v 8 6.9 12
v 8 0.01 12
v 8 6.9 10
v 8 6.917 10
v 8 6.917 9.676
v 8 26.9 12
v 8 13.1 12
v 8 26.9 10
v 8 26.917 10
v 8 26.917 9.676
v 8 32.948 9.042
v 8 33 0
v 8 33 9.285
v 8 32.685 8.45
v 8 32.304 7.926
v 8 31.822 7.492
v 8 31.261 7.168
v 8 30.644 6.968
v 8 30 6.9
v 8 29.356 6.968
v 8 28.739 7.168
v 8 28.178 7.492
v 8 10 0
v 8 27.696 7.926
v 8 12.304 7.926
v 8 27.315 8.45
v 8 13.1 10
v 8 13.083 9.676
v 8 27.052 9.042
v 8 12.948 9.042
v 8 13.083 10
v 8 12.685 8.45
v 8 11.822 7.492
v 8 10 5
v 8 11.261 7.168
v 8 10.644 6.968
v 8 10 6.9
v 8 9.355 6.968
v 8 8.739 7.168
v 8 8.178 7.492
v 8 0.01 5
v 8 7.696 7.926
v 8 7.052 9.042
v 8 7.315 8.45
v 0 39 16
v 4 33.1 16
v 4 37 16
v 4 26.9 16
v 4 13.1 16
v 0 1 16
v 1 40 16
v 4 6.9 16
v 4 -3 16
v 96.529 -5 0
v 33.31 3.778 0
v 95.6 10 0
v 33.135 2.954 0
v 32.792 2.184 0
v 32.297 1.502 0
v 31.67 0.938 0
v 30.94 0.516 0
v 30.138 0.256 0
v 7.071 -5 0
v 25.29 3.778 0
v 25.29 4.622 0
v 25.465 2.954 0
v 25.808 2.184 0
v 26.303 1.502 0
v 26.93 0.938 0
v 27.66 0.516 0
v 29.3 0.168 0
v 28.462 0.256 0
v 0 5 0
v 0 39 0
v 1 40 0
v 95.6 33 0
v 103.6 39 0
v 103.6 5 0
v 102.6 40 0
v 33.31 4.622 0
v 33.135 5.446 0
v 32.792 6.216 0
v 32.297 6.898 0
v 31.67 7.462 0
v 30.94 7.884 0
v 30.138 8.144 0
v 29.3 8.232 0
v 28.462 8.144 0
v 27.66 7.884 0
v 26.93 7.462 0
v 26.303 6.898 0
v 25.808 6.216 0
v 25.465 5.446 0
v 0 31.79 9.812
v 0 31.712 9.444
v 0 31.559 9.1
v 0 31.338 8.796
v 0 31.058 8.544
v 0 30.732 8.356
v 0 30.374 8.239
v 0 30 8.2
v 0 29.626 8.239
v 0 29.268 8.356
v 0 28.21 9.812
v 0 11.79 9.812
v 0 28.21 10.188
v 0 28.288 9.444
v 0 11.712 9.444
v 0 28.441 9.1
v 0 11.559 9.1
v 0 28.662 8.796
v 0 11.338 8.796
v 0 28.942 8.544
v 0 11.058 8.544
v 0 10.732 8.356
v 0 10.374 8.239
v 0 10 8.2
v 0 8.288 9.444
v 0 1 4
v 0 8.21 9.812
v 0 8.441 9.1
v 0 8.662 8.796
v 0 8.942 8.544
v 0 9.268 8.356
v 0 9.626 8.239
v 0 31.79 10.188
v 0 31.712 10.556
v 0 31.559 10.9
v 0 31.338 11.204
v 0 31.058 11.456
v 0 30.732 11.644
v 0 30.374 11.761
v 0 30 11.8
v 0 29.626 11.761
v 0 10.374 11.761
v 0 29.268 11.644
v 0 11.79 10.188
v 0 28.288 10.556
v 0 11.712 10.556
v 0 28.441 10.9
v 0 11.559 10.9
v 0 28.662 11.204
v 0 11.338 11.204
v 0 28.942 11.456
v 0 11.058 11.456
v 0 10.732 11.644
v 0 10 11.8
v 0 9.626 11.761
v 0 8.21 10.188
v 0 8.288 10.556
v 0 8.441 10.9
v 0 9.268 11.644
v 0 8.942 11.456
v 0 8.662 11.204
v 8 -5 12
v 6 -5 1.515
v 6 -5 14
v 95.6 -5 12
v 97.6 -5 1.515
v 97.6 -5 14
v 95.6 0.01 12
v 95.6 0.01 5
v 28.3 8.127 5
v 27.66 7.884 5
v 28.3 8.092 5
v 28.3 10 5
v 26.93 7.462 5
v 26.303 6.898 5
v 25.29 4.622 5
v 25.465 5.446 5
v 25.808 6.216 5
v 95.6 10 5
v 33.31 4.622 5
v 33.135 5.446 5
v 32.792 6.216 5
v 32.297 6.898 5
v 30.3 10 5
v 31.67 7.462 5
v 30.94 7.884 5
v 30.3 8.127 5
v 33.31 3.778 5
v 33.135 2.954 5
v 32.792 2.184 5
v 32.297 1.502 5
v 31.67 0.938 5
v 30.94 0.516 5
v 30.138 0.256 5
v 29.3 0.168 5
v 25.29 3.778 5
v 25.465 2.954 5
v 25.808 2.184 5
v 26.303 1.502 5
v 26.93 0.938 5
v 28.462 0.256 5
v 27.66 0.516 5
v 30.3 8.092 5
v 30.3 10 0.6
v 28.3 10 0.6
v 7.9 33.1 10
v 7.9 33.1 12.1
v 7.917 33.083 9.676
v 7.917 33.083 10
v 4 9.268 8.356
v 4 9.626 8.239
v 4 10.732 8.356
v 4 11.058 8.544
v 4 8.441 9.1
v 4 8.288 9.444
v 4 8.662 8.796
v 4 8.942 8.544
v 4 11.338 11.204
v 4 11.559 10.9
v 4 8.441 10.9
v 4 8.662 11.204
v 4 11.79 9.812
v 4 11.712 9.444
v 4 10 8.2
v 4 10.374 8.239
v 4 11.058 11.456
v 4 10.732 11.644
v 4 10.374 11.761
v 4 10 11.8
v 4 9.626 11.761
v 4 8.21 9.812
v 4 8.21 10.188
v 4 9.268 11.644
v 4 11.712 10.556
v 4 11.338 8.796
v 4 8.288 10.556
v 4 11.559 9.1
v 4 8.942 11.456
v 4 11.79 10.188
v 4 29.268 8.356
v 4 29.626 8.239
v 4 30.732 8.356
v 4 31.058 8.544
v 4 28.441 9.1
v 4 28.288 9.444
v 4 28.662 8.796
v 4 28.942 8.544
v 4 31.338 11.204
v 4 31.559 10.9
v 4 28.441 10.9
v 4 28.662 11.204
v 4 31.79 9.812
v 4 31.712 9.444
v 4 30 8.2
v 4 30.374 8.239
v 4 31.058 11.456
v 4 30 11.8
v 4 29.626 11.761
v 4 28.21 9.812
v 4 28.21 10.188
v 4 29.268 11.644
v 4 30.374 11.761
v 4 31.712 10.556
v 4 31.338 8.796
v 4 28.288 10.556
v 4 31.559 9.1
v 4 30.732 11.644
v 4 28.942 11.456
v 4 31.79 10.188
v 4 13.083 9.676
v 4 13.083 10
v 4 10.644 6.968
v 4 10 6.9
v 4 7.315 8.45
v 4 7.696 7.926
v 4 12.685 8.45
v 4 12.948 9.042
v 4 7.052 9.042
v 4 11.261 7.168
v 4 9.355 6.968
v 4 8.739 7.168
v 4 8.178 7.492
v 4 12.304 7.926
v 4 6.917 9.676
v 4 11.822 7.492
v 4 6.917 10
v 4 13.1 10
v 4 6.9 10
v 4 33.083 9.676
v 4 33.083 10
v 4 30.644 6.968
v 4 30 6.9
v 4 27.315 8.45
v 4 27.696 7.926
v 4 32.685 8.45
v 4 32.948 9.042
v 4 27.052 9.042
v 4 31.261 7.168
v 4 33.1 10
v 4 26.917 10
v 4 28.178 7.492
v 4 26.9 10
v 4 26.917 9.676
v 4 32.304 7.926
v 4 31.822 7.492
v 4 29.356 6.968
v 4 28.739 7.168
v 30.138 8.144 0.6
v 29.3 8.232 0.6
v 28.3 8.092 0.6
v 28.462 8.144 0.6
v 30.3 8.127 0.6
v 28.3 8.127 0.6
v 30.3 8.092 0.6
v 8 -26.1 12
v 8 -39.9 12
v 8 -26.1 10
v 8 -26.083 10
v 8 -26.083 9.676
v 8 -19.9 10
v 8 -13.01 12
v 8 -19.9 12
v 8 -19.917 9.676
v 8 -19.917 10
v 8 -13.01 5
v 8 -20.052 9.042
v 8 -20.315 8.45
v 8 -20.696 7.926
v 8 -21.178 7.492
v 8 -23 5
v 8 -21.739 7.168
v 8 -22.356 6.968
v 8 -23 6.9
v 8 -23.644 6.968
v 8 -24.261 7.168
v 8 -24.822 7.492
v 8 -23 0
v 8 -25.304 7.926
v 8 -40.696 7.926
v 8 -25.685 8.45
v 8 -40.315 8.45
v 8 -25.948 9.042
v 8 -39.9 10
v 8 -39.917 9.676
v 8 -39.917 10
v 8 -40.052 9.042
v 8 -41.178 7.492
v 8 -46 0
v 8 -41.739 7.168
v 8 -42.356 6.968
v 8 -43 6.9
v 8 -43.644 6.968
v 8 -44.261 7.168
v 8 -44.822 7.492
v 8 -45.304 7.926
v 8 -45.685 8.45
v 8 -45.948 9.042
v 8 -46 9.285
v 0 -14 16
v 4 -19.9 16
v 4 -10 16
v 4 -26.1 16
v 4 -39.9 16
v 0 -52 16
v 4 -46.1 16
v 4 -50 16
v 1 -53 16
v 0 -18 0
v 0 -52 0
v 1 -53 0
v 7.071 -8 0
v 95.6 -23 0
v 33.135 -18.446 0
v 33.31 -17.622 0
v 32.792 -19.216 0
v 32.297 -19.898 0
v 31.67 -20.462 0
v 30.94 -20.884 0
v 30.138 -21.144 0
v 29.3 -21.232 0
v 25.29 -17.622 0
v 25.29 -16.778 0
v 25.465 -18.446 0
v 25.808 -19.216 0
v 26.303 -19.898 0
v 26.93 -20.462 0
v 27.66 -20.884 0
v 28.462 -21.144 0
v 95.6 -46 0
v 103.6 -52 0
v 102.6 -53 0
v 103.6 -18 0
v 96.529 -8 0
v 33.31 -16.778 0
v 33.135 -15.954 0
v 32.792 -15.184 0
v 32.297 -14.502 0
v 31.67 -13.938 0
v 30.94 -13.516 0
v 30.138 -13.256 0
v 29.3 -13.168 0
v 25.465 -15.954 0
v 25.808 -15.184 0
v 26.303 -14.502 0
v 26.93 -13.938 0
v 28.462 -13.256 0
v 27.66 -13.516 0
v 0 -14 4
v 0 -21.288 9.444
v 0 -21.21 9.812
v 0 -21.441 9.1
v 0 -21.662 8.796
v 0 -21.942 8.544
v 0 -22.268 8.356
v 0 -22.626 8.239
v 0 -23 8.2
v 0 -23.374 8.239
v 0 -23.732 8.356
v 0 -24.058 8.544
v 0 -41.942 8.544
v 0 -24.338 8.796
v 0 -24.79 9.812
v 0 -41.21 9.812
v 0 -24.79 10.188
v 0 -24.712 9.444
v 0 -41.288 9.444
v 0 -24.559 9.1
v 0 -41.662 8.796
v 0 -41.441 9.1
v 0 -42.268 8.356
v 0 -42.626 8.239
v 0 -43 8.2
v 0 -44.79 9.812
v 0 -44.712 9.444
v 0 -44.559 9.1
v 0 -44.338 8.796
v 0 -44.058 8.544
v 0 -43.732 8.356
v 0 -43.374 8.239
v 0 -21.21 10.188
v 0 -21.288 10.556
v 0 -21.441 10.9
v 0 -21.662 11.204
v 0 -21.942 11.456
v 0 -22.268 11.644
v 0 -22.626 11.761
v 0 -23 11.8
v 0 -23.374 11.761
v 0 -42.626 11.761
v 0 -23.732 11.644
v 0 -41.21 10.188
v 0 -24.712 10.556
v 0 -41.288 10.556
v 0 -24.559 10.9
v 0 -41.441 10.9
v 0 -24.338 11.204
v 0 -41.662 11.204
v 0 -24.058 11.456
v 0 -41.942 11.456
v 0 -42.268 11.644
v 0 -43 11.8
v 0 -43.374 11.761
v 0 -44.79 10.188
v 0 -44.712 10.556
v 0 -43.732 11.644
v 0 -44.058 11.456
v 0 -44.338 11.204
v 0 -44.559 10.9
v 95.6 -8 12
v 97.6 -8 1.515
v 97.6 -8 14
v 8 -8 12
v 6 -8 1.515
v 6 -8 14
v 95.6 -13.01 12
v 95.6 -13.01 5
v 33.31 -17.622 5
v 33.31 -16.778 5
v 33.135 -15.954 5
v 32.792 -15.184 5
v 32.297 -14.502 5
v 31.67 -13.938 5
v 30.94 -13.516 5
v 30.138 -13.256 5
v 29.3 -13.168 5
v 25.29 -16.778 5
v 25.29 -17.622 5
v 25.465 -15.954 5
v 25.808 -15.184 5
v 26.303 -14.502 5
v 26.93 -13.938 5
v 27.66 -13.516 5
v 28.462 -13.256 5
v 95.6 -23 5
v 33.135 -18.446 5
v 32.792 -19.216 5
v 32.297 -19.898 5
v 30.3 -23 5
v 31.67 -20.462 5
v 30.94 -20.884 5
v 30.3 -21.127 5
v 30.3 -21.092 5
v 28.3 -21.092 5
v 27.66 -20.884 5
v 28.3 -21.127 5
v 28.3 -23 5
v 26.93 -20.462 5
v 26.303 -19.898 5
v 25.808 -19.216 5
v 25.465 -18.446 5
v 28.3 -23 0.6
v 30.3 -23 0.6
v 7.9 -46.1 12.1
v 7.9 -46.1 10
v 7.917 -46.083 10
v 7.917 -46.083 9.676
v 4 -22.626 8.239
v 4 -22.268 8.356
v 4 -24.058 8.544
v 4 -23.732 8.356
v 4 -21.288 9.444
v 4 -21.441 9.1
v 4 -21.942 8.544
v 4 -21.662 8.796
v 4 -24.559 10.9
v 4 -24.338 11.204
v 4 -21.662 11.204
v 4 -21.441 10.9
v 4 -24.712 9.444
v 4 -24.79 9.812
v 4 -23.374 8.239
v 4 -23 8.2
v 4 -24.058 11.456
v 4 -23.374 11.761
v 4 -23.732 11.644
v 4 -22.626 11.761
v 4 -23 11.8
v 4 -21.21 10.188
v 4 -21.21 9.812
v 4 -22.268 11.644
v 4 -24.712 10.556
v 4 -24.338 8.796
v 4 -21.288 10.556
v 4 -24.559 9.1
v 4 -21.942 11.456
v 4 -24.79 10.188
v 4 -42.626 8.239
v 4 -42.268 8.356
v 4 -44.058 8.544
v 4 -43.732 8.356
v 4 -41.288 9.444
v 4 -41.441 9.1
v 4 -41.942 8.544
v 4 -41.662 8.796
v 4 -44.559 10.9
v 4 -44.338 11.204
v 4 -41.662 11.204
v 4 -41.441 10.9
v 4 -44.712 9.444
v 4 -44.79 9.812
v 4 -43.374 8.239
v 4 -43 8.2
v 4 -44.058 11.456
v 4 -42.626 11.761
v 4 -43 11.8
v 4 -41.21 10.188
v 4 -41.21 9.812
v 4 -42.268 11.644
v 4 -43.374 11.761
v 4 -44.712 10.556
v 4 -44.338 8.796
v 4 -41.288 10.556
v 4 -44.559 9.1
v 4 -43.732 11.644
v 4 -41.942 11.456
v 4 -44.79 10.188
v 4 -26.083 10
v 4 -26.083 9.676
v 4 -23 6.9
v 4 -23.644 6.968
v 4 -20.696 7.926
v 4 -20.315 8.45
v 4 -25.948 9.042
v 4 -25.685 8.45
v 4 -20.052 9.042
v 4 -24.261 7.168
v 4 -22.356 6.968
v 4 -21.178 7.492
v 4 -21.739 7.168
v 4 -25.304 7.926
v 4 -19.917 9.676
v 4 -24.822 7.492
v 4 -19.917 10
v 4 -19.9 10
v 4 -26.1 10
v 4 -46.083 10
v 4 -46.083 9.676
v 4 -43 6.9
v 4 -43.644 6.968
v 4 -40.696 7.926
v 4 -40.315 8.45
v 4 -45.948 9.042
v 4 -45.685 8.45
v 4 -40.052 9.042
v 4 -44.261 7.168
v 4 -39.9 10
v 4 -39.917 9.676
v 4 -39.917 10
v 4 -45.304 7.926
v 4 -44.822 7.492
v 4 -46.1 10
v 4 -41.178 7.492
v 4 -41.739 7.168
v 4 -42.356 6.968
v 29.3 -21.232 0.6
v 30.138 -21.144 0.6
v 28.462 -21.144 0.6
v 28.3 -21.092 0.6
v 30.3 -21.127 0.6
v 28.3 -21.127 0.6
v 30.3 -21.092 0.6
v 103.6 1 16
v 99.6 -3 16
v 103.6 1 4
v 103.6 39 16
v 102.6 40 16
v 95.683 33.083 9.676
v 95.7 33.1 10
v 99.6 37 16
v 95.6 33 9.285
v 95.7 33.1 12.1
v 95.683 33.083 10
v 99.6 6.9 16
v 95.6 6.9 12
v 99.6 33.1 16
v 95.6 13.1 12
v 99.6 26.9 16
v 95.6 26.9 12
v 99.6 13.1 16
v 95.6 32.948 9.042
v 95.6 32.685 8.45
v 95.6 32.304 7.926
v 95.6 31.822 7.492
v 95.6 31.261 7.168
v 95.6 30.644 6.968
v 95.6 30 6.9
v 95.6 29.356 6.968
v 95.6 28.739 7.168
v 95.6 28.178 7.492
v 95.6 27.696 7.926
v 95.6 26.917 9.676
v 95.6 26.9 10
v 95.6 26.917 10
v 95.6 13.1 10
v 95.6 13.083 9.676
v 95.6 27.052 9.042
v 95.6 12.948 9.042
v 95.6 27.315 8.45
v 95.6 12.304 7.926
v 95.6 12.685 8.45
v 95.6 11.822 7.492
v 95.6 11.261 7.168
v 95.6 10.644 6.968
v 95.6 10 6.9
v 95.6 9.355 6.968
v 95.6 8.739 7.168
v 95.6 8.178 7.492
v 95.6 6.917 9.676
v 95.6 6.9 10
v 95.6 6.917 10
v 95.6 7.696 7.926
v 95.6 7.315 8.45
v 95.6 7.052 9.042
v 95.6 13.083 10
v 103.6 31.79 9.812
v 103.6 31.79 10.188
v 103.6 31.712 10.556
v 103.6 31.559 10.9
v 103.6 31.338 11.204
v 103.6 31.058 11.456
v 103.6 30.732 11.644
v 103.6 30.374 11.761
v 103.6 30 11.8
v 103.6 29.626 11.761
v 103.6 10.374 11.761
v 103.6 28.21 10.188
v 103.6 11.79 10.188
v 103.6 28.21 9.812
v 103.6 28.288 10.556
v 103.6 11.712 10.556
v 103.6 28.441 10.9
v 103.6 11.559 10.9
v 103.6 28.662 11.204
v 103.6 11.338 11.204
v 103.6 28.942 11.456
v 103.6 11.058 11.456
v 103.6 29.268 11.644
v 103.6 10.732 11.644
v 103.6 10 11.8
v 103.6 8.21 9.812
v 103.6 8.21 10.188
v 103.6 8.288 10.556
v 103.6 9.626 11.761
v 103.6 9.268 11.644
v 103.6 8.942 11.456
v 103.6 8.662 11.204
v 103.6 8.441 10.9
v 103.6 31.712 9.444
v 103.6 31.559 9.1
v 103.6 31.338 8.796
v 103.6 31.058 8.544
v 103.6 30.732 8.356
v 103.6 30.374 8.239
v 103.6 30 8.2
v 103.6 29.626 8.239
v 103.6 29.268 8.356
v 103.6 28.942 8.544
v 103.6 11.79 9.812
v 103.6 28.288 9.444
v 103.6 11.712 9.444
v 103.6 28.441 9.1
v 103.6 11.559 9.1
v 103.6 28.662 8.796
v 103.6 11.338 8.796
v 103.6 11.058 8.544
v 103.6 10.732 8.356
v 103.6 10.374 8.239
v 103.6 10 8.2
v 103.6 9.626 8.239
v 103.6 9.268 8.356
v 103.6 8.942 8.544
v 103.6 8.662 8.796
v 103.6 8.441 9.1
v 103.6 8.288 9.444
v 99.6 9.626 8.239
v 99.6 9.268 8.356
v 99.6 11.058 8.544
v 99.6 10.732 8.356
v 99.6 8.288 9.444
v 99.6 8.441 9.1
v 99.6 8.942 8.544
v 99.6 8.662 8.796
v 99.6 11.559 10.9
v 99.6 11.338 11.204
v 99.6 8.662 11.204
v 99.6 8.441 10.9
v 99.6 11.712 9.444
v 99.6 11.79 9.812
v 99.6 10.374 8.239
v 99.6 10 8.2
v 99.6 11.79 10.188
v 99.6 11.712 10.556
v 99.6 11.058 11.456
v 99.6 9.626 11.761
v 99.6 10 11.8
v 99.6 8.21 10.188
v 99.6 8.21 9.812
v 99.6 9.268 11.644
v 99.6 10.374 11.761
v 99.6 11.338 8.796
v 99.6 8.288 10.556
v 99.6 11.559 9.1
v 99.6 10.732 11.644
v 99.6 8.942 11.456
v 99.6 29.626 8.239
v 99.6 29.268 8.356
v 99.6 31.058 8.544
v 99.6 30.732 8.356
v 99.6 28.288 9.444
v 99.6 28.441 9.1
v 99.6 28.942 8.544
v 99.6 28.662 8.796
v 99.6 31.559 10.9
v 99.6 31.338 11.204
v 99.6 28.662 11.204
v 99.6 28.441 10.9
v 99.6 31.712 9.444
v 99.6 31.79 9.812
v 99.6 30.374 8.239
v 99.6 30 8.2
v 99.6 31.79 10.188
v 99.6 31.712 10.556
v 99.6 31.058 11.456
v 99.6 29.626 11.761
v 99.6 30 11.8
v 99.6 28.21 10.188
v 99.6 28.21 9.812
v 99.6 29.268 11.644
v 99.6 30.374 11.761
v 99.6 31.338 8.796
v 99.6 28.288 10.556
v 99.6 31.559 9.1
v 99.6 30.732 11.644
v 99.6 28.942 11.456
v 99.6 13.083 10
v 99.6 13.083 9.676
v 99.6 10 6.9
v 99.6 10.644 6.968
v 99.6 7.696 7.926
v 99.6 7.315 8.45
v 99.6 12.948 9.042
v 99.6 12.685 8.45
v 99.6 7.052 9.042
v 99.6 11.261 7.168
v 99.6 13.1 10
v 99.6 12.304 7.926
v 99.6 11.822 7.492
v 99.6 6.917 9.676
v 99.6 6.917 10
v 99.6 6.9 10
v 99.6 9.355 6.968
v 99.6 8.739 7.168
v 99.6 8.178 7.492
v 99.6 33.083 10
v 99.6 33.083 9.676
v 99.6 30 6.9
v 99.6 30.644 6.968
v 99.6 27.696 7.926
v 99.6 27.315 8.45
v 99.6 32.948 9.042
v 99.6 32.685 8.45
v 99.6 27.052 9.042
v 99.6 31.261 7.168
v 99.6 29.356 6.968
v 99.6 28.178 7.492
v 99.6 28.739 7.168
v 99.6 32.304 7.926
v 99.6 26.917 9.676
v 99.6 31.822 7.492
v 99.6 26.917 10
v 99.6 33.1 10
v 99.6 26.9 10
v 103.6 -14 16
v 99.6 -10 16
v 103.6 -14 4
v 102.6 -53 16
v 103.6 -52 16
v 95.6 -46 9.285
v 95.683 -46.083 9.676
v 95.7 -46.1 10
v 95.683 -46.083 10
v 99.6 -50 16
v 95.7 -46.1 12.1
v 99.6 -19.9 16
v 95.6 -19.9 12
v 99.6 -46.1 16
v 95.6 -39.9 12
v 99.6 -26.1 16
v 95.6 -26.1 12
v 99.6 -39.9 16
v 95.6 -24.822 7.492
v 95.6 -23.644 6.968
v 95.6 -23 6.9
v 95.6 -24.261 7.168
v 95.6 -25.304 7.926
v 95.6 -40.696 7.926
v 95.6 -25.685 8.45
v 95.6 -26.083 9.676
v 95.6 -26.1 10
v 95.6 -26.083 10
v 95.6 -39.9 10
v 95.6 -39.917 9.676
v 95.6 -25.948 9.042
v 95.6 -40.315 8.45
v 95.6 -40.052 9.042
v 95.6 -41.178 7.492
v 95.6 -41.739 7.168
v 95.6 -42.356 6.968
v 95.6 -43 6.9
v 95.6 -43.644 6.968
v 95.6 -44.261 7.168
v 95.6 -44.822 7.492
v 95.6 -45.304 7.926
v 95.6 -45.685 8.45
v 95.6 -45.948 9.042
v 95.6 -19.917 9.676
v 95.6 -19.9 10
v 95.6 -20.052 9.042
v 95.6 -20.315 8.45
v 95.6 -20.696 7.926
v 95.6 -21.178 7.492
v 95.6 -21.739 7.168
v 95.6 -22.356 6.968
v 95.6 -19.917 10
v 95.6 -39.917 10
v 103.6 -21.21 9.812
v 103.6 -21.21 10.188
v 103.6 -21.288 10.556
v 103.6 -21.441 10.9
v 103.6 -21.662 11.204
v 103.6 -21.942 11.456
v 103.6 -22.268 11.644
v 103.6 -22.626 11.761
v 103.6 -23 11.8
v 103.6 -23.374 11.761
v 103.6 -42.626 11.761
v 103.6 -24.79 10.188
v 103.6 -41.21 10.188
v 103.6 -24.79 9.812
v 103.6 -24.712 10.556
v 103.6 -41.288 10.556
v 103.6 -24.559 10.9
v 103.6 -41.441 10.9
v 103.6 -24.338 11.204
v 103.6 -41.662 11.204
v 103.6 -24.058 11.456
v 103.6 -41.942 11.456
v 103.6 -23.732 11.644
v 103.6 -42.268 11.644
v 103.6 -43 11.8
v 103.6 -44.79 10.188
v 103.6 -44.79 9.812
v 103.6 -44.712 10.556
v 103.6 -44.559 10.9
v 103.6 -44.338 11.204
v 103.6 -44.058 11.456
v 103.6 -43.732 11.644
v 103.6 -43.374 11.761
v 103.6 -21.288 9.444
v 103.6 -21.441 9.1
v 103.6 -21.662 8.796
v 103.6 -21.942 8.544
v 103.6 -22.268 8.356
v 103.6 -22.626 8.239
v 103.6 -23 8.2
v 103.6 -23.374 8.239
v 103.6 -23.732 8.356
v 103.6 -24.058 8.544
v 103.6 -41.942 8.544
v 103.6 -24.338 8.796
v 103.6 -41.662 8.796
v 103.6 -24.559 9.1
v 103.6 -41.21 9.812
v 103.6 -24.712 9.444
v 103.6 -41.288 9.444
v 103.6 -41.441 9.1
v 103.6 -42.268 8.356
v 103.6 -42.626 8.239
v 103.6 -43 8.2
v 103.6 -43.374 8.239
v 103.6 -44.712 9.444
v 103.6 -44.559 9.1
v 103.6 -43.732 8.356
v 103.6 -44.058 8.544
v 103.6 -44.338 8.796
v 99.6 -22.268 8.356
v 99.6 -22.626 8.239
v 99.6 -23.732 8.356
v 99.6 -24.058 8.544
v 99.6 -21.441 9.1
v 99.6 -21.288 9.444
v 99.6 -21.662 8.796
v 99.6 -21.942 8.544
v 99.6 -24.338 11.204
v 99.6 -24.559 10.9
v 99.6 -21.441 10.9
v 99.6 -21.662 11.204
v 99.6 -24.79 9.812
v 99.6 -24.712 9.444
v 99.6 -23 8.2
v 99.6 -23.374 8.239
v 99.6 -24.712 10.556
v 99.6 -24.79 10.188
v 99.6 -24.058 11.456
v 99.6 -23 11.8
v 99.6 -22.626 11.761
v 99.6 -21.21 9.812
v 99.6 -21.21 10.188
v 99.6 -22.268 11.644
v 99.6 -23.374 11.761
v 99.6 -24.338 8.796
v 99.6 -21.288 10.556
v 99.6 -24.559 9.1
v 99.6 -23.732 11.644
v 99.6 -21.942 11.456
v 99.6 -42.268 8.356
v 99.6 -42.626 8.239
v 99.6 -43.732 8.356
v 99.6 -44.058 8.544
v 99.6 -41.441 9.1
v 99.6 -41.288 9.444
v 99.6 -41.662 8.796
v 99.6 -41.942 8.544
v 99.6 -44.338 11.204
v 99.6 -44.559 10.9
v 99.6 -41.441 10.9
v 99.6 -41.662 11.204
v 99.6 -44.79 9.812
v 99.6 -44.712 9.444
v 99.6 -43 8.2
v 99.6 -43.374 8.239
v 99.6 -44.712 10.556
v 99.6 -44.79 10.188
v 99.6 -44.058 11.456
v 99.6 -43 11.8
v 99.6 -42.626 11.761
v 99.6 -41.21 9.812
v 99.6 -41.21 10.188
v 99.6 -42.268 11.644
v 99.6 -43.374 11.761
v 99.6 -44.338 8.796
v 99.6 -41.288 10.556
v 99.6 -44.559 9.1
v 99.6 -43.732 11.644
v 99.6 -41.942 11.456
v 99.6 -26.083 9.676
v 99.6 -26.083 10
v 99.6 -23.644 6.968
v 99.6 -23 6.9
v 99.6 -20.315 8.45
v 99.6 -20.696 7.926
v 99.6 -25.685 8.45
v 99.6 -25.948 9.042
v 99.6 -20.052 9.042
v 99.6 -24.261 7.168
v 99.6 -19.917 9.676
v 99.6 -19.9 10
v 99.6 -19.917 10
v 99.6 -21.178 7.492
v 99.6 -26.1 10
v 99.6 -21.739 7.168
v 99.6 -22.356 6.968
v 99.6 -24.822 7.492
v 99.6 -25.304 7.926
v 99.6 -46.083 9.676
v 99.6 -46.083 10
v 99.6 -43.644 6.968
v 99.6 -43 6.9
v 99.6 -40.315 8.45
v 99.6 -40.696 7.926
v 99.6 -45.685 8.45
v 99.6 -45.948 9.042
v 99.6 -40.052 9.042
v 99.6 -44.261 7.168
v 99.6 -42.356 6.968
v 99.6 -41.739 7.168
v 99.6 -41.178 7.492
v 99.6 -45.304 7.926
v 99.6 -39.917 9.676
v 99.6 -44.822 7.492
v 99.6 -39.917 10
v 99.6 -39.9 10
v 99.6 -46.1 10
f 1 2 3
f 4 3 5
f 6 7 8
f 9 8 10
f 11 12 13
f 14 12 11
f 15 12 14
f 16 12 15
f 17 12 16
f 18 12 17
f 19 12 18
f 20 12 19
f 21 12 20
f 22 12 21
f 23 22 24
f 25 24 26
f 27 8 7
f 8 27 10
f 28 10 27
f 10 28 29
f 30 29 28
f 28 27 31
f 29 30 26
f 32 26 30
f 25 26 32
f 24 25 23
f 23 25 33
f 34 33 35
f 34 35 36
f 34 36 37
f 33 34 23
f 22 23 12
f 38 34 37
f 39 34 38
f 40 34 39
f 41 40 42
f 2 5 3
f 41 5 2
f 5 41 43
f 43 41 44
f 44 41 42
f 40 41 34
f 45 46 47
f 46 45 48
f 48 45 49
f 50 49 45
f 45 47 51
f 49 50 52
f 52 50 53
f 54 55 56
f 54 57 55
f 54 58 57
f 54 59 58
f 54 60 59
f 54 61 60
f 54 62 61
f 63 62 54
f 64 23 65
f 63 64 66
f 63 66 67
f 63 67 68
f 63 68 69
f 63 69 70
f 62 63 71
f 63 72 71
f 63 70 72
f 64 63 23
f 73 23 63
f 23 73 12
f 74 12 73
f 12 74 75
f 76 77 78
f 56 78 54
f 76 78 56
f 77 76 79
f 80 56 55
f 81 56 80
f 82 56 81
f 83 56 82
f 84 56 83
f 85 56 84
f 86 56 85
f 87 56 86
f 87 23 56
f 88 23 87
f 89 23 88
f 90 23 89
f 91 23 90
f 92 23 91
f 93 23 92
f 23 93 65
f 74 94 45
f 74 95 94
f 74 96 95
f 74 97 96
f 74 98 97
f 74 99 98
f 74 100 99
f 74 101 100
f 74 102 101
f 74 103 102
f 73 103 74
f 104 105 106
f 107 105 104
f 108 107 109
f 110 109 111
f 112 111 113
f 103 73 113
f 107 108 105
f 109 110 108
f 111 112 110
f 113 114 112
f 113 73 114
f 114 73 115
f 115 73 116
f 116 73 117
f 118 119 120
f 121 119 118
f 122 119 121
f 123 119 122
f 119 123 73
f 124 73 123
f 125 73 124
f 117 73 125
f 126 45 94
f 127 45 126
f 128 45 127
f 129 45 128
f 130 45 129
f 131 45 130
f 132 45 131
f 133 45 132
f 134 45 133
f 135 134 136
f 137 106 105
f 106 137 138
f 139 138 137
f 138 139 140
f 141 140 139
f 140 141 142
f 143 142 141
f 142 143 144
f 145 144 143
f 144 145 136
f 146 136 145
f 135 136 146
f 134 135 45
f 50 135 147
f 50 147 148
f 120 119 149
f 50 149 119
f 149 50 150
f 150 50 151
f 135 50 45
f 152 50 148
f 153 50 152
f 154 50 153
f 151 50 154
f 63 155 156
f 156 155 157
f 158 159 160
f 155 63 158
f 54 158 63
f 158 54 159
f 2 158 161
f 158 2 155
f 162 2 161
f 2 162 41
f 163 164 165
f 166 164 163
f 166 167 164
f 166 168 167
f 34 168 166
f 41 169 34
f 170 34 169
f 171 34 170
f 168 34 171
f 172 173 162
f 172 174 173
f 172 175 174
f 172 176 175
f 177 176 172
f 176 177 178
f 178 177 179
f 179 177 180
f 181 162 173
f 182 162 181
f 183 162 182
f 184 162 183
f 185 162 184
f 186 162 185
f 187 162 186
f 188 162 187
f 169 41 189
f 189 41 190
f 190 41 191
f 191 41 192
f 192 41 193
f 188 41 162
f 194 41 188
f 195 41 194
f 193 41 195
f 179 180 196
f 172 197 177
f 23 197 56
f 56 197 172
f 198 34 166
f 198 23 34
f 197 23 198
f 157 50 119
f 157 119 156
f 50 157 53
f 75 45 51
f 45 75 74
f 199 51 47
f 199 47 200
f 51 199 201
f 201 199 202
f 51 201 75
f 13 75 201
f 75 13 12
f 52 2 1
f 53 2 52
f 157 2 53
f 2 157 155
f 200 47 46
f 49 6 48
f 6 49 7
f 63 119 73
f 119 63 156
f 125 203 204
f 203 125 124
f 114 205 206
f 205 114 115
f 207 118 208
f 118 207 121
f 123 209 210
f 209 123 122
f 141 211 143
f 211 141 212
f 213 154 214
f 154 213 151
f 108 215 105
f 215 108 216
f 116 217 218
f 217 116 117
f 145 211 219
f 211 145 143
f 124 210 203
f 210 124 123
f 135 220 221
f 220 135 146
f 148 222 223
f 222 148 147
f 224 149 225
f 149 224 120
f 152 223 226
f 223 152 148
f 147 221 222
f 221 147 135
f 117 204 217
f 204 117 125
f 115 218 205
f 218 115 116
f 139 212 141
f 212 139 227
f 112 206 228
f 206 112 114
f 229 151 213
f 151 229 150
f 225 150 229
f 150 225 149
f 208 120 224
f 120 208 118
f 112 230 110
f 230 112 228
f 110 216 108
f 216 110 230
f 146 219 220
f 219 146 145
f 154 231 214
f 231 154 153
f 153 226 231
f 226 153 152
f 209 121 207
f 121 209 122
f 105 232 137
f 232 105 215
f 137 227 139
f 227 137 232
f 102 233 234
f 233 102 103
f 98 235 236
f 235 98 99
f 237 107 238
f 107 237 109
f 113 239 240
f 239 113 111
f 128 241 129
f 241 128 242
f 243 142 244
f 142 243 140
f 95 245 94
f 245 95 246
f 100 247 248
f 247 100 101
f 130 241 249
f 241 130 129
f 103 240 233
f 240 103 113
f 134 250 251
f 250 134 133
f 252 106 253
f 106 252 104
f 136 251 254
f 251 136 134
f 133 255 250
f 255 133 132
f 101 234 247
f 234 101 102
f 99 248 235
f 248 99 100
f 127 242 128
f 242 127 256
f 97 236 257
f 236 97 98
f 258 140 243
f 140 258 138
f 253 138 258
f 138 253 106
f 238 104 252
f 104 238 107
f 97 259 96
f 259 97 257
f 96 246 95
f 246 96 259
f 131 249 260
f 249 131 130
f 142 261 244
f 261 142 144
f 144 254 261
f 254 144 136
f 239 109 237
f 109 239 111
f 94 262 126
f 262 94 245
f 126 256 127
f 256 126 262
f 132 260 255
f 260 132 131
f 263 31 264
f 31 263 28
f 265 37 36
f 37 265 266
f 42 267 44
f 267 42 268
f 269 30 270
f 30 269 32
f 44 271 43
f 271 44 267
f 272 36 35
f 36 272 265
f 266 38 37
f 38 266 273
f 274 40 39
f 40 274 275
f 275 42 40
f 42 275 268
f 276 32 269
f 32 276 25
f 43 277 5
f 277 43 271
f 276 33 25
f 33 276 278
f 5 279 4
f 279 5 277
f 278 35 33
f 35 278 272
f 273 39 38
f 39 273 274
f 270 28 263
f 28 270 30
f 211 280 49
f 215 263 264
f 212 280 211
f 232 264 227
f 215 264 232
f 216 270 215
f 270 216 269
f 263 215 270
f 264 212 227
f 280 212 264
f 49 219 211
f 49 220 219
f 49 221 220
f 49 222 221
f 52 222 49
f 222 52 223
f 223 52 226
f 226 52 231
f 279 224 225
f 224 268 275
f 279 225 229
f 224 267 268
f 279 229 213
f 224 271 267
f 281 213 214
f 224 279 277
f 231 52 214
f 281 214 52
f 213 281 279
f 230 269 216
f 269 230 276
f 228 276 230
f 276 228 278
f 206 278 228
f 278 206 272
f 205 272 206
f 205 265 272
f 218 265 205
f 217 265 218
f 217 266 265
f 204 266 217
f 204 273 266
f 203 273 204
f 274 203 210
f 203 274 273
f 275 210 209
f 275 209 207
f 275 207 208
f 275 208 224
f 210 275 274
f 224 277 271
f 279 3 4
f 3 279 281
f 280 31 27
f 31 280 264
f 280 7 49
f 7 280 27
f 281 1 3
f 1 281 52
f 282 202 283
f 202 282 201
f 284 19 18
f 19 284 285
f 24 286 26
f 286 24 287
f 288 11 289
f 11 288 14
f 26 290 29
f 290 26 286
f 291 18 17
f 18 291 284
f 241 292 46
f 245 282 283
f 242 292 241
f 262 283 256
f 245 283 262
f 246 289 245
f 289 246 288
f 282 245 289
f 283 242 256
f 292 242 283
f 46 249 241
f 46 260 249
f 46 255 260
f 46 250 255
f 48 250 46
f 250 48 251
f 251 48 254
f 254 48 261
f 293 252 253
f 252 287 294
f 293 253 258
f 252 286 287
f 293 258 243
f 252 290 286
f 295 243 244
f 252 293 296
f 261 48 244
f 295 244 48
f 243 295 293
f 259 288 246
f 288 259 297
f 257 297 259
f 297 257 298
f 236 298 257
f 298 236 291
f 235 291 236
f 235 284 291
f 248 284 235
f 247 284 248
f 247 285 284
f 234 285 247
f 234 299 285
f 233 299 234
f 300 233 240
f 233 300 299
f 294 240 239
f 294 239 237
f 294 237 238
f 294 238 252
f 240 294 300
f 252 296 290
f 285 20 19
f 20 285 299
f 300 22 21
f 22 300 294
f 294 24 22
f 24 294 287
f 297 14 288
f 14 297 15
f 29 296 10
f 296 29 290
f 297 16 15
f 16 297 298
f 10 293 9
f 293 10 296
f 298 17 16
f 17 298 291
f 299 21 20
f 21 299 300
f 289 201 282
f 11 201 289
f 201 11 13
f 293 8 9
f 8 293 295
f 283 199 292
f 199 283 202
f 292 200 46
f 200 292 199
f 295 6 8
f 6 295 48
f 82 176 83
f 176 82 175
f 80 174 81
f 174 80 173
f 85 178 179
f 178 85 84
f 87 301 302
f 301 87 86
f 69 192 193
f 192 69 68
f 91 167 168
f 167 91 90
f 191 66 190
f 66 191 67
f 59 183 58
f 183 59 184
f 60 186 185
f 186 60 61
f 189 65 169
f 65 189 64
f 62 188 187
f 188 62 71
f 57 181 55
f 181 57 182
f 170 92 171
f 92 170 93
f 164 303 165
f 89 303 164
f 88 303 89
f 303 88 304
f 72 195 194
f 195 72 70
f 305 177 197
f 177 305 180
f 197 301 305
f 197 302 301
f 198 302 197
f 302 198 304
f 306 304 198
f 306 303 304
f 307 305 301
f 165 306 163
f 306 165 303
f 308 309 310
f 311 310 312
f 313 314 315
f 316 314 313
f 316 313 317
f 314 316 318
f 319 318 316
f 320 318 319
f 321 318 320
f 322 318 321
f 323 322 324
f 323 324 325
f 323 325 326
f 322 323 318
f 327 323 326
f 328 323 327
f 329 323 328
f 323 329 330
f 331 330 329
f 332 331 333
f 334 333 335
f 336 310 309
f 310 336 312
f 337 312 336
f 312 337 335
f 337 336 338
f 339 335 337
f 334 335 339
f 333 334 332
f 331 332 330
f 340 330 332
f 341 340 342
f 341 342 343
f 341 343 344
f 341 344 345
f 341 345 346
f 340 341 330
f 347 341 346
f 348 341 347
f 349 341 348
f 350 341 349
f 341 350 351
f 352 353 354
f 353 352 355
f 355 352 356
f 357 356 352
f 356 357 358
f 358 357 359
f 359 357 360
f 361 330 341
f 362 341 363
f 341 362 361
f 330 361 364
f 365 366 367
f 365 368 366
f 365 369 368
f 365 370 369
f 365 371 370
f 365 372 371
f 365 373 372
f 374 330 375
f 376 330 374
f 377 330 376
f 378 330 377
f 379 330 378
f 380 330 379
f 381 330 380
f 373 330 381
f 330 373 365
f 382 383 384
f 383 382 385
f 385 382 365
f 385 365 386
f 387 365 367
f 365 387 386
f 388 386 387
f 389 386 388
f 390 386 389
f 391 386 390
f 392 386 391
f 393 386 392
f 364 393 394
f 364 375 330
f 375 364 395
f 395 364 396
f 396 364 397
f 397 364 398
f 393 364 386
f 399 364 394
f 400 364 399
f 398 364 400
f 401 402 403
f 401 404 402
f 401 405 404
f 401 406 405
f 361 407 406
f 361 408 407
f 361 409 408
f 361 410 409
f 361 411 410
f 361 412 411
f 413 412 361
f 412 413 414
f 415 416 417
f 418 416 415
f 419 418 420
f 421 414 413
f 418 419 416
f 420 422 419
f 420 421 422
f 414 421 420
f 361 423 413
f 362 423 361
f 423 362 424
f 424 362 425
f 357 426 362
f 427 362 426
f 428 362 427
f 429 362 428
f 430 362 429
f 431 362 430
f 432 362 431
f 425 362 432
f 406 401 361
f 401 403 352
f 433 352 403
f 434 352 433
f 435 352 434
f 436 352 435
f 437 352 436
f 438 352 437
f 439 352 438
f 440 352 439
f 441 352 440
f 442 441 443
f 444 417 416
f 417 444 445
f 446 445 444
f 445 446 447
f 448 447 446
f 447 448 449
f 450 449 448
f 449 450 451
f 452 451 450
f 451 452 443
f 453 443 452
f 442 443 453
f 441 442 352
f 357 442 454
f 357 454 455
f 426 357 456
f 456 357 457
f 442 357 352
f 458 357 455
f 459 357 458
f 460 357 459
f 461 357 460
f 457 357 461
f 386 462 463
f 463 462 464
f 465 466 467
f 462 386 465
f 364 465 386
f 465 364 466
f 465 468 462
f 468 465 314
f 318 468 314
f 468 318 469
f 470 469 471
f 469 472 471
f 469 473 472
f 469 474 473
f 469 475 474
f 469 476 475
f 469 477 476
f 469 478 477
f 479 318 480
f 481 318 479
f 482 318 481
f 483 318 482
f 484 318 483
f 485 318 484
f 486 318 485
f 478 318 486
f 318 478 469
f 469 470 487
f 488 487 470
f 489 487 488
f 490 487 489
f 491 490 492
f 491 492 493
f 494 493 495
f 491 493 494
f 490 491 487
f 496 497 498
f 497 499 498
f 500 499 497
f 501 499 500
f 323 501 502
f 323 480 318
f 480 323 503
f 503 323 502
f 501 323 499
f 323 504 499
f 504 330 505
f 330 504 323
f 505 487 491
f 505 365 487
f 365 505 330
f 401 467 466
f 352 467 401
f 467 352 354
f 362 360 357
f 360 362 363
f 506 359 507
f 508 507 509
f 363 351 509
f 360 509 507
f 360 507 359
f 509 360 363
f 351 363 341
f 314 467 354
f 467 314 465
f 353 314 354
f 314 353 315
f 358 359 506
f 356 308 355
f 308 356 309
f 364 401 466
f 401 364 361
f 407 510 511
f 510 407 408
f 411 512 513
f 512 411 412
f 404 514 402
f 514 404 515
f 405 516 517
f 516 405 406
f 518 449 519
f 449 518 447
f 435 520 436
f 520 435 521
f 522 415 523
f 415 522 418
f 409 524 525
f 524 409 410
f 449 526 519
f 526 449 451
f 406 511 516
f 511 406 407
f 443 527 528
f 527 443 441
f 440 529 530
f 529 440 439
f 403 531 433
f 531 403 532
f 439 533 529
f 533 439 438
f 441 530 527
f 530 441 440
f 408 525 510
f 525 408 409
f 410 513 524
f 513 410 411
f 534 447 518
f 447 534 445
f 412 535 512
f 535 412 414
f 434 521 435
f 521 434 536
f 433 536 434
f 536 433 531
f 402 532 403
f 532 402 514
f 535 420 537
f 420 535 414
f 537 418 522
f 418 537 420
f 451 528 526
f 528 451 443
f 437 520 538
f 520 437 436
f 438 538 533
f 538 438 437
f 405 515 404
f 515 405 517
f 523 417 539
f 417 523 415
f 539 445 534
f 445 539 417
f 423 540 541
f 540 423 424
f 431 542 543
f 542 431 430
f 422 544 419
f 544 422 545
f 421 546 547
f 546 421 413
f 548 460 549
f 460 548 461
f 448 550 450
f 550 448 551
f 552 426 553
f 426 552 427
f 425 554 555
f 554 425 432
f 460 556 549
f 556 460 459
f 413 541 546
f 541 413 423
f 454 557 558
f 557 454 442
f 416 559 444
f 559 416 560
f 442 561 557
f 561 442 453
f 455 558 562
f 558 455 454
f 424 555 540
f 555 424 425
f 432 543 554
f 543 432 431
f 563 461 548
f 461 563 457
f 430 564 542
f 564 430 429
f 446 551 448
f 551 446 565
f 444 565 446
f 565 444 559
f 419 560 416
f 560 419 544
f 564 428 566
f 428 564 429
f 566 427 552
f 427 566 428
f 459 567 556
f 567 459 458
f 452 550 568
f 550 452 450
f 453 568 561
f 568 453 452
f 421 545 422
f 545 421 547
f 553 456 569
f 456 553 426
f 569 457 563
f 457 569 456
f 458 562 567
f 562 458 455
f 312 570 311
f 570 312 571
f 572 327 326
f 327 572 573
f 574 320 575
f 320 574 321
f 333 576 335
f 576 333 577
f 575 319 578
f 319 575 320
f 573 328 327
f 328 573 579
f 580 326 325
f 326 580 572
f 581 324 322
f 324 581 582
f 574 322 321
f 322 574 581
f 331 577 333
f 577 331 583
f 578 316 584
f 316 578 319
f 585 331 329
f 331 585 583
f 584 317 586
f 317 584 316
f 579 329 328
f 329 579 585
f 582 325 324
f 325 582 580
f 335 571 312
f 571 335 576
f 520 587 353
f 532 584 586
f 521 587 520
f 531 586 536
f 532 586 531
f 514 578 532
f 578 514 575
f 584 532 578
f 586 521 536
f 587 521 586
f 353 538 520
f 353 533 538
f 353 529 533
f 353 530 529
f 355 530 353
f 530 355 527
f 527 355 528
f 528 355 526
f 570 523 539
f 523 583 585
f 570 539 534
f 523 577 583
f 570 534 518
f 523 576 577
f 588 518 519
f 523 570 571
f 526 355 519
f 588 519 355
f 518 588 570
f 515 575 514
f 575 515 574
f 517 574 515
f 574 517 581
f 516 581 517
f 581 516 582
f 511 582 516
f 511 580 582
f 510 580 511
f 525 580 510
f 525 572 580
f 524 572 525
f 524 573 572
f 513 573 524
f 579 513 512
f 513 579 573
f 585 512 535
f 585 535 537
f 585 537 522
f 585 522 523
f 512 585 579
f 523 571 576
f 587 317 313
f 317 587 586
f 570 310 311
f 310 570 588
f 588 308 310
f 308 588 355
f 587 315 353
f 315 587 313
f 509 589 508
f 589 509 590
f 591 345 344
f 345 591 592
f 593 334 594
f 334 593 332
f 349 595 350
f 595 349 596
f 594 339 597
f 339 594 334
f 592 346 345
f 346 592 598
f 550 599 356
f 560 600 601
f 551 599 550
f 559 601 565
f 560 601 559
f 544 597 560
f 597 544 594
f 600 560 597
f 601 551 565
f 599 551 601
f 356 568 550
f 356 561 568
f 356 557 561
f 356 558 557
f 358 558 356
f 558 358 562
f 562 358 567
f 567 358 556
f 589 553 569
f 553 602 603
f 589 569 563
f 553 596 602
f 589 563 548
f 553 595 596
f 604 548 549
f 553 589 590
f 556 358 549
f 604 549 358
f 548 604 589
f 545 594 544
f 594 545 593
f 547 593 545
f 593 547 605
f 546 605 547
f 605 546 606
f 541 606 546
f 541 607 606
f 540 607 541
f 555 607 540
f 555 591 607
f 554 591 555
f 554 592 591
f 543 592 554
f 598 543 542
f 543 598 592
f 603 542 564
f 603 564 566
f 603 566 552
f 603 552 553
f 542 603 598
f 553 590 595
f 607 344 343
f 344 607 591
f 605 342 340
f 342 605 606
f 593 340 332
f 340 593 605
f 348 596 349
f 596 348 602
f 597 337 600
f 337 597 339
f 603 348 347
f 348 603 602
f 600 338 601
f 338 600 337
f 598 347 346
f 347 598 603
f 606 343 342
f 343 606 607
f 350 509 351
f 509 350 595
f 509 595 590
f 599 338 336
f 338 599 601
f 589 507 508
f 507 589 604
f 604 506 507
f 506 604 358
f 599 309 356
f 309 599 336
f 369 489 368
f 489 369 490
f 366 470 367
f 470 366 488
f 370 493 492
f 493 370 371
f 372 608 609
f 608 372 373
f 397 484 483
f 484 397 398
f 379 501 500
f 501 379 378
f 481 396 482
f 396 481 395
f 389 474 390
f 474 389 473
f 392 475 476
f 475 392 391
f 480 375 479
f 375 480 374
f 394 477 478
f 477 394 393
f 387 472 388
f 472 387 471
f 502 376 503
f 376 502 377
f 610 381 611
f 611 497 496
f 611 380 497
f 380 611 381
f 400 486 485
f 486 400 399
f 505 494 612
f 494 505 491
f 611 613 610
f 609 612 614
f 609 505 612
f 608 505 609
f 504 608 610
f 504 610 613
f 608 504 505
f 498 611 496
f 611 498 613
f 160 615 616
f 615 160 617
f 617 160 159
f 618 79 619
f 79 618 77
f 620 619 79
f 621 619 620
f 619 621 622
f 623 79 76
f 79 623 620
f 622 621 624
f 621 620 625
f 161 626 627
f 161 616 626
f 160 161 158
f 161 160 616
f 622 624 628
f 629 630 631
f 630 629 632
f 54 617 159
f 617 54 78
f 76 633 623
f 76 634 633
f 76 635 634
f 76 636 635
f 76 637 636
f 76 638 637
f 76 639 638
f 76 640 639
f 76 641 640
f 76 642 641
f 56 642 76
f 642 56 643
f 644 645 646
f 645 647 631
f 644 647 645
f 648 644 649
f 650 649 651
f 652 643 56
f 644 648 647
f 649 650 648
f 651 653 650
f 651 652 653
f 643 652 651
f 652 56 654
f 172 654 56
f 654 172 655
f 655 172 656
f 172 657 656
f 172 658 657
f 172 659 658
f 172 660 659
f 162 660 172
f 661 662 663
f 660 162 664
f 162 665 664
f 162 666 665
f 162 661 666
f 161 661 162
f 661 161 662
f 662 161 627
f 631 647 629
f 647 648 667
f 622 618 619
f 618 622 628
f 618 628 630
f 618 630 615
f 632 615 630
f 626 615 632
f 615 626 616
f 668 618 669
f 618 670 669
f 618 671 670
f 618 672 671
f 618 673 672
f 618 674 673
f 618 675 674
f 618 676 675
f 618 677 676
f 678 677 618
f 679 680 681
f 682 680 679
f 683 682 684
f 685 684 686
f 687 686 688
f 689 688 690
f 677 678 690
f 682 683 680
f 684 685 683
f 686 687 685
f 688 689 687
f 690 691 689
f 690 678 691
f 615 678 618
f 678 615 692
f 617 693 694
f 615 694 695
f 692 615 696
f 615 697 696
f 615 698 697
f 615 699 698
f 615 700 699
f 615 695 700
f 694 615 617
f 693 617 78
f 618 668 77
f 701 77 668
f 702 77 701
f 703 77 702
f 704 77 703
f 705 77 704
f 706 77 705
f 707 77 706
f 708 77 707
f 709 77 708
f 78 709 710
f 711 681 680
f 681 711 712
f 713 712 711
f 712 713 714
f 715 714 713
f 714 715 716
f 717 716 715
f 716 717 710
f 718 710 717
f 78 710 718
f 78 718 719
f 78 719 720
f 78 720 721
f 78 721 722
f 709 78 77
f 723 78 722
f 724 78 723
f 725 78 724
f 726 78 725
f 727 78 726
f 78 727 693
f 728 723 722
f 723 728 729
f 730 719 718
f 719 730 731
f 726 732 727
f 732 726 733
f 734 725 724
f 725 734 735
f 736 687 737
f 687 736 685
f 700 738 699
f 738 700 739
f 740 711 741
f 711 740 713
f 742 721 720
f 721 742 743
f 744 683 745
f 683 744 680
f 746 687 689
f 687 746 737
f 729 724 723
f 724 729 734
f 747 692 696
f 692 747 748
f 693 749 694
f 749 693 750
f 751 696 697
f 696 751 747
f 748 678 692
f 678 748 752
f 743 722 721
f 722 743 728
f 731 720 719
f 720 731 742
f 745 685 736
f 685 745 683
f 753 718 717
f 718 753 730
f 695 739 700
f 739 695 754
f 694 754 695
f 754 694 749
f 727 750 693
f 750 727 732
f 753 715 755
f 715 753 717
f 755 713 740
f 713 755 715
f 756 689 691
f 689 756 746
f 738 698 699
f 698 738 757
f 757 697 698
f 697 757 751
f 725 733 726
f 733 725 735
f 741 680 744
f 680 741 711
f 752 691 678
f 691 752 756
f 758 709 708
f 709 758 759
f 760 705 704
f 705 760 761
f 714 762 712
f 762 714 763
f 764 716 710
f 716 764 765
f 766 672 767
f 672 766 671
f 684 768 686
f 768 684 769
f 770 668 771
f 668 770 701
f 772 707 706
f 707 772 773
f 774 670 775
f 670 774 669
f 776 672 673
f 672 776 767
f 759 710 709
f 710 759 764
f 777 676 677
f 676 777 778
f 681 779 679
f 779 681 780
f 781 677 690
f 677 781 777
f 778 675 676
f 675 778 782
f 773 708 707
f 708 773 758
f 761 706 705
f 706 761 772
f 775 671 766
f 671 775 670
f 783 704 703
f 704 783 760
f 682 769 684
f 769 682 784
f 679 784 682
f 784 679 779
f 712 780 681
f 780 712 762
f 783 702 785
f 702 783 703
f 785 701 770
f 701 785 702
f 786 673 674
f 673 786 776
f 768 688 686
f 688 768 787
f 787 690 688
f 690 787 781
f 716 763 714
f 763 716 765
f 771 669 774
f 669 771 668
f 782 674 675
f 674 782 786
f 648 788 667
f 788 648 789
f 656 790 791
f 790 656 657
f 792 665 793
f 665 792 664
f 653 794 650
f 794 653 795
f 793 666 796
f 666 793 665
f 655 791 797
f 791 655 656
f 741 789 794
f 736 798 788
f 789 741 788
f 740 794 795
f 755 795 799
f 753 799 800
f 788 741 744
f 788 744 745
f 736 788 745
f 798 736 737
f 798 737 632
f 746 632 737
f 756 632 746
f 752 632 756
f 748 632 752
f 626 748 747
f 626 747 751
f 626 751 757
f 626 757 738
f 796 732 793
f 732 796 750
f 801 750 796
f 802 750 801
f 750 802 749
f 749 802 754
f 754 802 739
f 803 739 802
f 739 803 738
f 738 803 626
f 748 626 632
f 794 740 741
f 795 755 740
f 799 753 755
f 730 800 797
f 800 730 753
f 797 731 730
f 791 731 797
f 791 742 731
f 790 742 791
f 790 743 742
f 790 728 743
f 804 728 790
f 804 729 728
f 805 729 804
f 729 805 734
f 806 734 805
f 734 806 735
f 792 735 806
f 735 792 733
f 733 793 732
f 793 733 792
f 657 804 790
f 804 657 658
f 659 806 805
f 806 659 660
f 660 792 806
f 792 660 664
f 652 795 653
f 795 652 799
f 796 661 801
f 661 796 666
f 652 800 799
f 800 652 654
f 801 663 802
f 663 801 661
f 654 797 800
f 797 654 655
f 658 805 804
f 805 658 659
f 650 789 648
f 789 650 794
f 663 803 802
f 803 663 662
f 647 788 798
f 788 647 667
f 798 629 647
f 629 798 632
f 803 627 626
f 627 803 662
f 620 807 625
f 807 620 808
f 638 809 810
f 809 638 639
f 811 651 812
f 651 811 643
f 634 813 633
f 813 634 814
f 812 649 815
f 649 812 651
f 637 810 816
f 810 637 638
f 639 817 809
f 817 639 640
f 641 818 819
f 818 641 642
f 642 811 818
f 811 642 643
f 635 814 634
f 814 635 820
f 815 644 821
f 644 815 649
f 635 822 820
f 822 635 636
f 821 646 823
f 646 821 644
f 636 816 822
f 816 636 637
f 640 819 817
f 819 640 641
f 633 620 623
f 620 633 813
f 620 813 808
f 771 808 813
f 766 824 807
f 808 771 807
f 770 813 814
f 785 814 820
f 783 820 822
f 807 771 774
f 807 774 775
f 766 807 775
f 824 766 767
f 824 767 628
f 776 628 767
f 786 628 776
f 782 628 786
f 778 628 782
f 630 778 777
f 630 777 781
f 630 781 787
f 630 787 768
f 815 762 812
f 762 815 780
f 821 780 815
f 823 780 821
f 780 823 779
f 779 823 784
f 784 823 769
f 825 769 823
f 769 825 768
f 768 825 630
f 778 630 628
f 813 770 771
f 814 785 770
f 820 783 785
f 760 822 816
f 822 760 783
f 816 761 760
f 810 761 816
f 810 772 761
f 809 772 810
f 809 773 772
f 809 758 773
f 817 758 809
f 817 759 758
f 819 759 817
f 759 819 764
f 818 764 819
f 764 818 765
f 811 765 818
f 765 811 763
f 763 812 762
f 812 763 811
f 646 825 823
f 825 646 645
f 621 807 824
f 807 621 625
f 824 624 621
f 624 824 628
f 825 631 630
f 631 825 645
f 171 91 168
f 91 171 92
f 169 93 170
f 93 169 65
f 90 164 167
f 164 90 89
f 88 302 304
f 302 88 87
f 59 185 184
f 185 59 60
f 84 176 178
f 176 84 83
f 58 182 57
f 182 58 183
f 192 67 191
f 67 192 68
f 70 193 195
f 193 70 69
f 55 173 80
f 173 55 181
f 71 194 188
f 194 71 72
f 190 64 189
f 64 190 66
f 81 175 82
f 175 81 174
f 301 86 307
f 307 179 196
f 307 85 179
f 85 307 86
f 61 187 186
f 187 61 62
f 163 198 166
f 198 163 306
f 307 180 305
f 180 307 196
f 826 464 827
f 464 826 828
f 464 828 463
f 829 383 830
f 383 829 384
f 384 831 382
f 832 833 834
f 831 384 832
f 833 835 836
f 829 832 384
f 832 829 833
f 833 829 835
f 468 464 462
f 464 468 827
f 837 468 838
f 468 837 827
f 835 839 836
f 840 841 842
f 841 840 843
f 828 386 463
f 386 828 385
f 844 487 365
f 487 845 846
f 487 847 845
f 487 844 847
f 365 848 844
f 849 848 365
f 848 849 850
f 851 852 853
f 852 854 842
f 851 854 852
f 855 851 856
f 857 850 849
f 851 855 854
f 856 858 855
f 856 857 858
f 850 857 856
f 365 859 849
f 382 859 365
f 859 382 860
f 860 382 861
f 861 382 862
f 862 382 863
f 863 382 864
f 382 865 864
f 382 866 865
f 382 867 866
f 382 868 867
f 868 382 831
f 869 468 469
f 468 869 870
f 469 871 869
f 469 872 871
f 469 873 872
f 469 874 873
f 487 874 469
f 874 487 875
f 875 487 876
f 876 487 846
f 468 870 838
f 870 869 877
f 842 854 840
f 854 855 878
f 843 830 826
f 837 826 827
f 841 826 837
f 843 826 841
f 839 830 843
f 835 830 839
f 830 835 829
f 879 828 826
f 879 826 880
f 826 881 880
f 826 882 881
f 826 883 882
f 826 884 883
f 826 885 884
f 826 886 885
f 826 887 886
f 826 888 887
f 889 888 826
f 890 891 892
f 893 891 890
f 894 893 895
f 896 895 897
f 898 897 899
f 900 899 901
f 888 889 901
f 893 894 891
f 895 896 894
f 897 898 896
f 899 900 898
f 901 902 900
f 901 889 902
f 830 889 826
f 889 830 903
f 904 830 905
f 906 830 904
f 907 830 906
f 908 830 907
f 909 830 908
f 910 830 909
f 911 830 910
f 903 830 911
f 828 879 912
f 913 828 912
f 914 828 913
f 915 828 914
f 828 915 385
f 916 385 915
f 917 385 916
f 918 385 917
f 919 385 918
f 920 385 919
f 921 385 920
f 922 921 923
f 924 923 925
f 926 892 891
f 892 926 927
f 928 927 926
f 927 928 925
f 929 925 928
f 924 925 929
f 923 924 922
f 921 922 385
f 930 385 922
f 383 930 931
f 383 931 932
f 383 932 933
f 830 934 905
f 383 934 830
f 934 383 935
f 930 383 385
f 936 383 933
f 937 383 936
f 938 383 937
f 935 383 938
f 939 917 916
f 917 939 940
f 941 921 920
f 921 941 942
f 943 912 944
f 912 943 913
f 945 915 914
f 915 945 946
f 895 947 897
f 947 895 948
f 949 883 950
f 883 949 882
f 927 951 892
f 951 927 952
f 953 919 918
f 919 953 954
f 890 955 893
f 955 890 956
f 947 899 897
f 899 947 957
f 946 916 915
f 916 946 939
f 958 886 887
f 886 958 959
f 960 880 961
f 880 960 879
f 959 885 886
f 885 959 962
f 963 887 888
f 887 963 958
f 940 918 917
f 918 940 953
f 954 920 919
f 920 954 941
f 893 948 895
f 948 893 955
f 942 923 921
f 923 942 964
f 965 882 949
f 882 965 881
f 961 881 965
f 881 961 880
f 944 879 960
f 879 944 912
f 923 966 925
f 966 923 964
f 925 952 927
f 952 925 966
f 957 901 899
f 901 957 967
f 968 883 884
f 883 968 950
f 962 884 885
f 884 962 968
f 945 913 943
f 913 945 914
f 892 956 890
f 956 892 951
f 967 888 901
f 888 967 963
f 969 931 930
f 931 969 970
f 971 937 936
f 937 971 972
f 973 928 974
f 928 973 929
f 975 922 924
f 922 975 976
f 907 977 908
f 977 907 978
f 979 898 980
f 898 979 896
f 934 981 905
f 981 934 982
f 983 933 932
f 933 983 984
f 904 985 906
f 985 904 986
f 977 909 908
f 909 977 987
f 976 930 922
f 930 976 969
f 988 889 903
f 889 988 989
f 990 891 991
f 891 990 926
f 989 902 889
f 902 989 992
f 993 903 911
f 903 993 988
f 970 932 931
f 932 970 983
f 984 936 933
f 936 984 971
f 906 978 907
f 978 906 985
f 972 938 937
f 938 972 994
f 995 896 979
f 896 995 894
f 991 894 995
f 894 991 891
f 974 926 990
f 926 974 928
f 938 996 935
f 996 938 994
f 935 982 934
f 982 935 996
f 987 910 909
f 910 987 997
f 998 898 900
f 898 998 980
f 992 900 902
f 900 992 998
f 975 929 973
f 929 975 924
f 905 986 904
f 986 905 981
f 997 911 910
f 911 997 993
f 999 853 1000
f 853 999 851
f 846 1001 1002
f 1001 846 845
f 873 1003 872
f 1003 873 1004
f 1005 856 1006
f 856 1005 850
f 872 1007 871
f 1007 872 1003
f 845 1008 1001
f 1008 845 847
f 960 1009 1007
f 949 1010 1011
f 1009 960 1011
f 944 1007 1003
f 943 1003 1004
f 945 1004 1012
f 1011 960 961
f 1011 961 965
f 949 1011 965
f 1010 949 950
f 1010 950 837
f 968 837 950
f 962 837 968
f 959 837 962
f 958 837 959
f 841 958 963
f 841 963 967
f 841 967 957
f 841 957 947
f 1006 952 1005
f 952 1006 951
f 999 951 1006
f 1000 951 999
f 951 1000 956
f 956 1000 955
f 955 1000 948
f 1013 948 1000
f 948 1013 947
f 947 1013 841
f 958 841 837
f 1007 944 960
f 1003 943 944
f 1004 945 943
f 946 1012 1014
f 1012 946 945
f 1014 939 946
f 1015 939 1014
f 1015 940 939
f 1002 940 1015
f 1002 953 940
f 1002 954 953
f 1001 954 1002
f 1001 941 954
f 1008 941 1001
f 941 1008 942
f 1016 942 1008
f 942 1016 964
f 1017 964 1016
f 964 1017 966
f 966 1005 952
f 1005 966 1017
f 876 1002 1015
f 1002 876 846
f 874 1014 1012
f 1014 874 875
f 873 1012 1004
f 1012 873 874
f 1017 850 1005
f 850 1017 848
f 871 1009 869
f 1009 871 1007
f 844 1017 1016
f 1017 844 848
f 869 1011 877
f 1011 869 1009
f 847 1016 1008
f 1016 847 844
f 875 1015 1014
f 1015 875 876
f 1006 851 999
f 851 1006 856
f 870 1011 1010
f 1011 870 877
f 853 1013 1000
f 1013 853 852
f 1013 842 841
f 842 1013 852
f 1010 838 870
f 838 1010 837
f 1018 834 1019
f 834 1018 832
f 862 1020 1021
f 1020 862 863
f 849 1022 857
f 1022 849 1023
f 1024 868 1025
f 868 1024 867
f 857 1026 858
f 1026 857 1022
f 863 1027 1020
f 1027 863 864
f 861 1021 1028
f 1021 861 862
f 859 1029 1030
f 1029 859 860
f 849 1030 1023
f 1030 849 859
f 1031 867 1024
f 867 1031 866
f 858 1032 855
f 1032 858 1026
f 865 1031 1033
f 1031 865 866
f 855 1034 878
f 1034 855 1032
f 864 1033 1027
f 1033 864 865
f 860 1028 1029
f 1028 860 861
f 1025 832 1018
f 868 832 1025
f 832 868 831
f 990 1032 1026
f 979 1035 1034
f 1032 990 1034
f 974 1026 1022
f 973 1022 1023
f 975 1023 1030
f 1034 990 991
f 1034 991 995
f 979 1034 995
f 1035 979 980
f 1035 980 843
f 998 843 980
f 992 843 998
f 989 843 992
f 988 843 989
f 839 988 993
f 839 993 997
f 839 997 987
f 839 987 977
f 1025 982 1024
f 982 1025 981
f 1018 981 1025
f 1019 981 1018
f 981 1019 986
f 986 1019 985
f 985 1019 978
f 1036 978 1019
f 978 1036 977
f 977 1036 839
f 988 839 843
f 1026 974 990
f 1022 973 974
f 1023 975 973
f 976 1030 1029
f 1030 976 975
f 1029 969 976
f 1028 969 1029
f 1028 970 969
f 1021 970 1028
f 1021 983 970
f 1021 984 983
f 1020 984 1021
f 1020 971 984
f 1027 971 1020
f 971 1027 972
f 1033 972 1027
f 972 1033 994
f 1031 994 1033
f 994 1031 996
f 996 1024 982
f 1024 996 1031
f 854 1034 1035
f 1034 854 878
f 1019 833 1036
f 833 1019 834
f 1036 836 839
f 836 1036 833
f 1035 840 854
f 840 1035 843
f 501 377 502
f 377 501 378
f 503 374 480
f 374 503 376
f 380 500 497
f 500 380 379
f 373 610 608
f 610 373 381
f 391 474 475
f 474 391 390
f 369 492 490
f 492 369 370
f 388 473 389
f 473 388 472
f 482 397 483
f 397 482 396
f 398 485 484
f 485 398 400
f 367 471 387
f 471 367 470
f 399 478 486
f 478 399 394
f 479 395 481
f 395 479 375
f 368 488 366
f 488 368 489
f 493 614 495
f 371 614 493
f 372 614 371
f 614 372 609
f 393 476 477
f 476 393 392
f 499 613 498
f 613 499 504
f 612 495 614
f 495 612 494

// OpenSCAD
// PRUSA iteration3
// Z axis top holder
// GNU GPL v3
// Josef Průša <iam@josefprusa.cz> and contributors
// http://www.reprap.org/wiki/Prusa_Mendel
// http://prusamendel.org

extension = 45;

module z_top_base(){
 translate([0,-5,0]) cube([8,45,16]); // plate touching the base
 translate([0,-5,0]) cube([30,5.01,12]); // plate touching the base
 translate([0,-5,0]) cube([38,15,5]); // plate touching the base
}

module z_top_base_extended(){
 translate([0,-5,0]) cube([8,45,16]); // plate touching the base
 translate([0,-5,0]) cube([30+extension,5.01,12]); // plate touching the base
 translate([0,-5,0]) cube([38+extension,15,5]); // plate touching the base
}


module z_top_fancy(){
 // Corner cutouts
 translate([0.5,0.5,0]) rotate([0,0,-45-180]) translate([-15,0,-1]) cube([30,30,51]);
 translate([0.5,40-0.5,0]) rotate([0,0,-45+90]) translate([-15,0,-1]) cube([30,30,51]);
 translate([-4,40+5,0]) rotate([0,0,-45-0]) translate([0,0,-1]) cube([30,30,51]);
 translate([8,0,12]) rotate([0,-45,0]) translate([0,-5,0]) cube([30,50,30]);
 *translate([38-2.5,-5+2.5,0]) rotate([0,0,-45-90]) translate([-15,0,-1]) cube([30,30,51]);
 *translate([38-1.5,10-1.5,0]) rotate([0,0,-45]) translate([-15,0,-1]) cube([30,30,51]);
 translate([0,0,5]) rotate([45+180,0,0]) rotate([0,0,-45+90]) translate([0,0,-15]) cube([30,30,30]);

// Stiffner cut out
 *translate([30,0,5.5]) rotate([0,-45,0]) translate([0,-5,0]) cube([30,50,30]);
}

module z_top_fancy_extended(){
 // Corner cutouts
 translate([0.5,0.5,0]) rotate([0,0,-45-180]) translate([-15,0,-1]) cube([30,30,51]);
 translate([0.5,40-0.5,0]) rotate([0,0,-45+90]) translate([-15,0,-1]) cube([30,30,51]);
 translate([-4,40+5,0]) rotate([0,0,-45-0]) translate([0,0,-1]) cube([30,30,51]);
 translate([8,0,12]) rotate([0,-45,0]) translate([0,-5,0]) cube([30,50,30]);
 *translate([38-2.5,-5+2.5,0]) rotate([0,0,-45-90]) translate([-15,0,-1]) cube([30,30,51]);
 *translate([38-1.5,10-1.5,0]) rotate([0,0,-45]) translate([-15,0,-1]) cube([30,30,51]);
 translate([0,0,5]) rotate([45+180,0,0]) rotate([0,0,-45+90]) translate([0,0,-15]) cube([30,30,30]);

// Stiffner cut out
 *translate([30,0,5.5]) rotate([0,-45,0]) translate([0,-5,0]) cube([30,50,30]);
}

module z_top_holes(){
 // Screw holes
 translate([-1,10,10]) rotate([0,90,0]) cylinder(h = 20, r=1.8, $fn=30);
 translate([-1,10+20,10]) rotate([0,90,0]) cylinder(h = 20, r=1.8, $fn=30);

 // Screw heads
 translate([4,10,10]) rotate([0,90,0]) cylinder(h = 20, r=3.1, $fn=30);
 translate([4,10-3.1,10]) cube([10,6.2,10]);
 translate([4,10+20,10]) rotate([0,90,0]) cylinder(h = 20, r=3.1, $fn=30);
 translate([4,10+20-3.1,10]) cube([10,6.2,10]);

 // Z rod holder
 translate([25+4.3,4.2,-1]) rotate([0,0,0]) cylinder(h = 50, r=4.1, $fn=15);
 translate([25+4.3-1,3,0.6]) cube([2,10,7]); // it's bit up because it helps with printing
}

module z_top_holes_extended(){
 // Screw holes
 translate([-1,10,10]) rotate([0,90,0]) cylinder(h = 20, r=1.8, $fn=30);
 translate([-1,10+20,10]) rotate([0,90,0]) cylinder(h = 20, r=1.8, $fn=30);

 // Screw heads
 translate([4,10,10]) rotate([0,90,0]) cylinder(h = 20, r=3.1, $fn=30);
 translate([4,10-3.1,10]) cube([10,6.2,10]);
 translate([4,10+20,10]) rotate([0,90,0]) cylinder(h = 20, r=3.1, $fn=30);
 translate([4,10+20-3.1,10]) cube([10,6.2,10]);

 // Z rod holder
 translate([25+4.3+extension,4.2,-1]) rotate([0,0,0]) cylinder(h = 50, r=4.1, $fn=15);
 translate([25+4.3-1+extension,3,0.6]) cube([2,10,7]); // it's bit up because it helps with printing
}

// Final part
module z_top(){
 difference(){
  z_top_base();
  z_top_fancy();
  z_top_holes();
 }
 translate([0,-13,0]) mirror([0,1,0]) difference(){
  z_top_base();
  z_top_fancy();
  z_top_holes();
 }

 translate([29.3*2+extension,0,0]) mirror([1, 0, 0]) difference(){
  z_top_base_extended();
  z_top_fancy_extended();
  z_top_holes_extended();
 }
 translate([29.3*2+extension, -13,0]) mirror([1, 0, 0]) mirror([0, 1, 0]) difference(){
  z_top_base_extended();
  z_top_fancy_extended();
  z_top_holes_extended();
 }

}

z_top();
